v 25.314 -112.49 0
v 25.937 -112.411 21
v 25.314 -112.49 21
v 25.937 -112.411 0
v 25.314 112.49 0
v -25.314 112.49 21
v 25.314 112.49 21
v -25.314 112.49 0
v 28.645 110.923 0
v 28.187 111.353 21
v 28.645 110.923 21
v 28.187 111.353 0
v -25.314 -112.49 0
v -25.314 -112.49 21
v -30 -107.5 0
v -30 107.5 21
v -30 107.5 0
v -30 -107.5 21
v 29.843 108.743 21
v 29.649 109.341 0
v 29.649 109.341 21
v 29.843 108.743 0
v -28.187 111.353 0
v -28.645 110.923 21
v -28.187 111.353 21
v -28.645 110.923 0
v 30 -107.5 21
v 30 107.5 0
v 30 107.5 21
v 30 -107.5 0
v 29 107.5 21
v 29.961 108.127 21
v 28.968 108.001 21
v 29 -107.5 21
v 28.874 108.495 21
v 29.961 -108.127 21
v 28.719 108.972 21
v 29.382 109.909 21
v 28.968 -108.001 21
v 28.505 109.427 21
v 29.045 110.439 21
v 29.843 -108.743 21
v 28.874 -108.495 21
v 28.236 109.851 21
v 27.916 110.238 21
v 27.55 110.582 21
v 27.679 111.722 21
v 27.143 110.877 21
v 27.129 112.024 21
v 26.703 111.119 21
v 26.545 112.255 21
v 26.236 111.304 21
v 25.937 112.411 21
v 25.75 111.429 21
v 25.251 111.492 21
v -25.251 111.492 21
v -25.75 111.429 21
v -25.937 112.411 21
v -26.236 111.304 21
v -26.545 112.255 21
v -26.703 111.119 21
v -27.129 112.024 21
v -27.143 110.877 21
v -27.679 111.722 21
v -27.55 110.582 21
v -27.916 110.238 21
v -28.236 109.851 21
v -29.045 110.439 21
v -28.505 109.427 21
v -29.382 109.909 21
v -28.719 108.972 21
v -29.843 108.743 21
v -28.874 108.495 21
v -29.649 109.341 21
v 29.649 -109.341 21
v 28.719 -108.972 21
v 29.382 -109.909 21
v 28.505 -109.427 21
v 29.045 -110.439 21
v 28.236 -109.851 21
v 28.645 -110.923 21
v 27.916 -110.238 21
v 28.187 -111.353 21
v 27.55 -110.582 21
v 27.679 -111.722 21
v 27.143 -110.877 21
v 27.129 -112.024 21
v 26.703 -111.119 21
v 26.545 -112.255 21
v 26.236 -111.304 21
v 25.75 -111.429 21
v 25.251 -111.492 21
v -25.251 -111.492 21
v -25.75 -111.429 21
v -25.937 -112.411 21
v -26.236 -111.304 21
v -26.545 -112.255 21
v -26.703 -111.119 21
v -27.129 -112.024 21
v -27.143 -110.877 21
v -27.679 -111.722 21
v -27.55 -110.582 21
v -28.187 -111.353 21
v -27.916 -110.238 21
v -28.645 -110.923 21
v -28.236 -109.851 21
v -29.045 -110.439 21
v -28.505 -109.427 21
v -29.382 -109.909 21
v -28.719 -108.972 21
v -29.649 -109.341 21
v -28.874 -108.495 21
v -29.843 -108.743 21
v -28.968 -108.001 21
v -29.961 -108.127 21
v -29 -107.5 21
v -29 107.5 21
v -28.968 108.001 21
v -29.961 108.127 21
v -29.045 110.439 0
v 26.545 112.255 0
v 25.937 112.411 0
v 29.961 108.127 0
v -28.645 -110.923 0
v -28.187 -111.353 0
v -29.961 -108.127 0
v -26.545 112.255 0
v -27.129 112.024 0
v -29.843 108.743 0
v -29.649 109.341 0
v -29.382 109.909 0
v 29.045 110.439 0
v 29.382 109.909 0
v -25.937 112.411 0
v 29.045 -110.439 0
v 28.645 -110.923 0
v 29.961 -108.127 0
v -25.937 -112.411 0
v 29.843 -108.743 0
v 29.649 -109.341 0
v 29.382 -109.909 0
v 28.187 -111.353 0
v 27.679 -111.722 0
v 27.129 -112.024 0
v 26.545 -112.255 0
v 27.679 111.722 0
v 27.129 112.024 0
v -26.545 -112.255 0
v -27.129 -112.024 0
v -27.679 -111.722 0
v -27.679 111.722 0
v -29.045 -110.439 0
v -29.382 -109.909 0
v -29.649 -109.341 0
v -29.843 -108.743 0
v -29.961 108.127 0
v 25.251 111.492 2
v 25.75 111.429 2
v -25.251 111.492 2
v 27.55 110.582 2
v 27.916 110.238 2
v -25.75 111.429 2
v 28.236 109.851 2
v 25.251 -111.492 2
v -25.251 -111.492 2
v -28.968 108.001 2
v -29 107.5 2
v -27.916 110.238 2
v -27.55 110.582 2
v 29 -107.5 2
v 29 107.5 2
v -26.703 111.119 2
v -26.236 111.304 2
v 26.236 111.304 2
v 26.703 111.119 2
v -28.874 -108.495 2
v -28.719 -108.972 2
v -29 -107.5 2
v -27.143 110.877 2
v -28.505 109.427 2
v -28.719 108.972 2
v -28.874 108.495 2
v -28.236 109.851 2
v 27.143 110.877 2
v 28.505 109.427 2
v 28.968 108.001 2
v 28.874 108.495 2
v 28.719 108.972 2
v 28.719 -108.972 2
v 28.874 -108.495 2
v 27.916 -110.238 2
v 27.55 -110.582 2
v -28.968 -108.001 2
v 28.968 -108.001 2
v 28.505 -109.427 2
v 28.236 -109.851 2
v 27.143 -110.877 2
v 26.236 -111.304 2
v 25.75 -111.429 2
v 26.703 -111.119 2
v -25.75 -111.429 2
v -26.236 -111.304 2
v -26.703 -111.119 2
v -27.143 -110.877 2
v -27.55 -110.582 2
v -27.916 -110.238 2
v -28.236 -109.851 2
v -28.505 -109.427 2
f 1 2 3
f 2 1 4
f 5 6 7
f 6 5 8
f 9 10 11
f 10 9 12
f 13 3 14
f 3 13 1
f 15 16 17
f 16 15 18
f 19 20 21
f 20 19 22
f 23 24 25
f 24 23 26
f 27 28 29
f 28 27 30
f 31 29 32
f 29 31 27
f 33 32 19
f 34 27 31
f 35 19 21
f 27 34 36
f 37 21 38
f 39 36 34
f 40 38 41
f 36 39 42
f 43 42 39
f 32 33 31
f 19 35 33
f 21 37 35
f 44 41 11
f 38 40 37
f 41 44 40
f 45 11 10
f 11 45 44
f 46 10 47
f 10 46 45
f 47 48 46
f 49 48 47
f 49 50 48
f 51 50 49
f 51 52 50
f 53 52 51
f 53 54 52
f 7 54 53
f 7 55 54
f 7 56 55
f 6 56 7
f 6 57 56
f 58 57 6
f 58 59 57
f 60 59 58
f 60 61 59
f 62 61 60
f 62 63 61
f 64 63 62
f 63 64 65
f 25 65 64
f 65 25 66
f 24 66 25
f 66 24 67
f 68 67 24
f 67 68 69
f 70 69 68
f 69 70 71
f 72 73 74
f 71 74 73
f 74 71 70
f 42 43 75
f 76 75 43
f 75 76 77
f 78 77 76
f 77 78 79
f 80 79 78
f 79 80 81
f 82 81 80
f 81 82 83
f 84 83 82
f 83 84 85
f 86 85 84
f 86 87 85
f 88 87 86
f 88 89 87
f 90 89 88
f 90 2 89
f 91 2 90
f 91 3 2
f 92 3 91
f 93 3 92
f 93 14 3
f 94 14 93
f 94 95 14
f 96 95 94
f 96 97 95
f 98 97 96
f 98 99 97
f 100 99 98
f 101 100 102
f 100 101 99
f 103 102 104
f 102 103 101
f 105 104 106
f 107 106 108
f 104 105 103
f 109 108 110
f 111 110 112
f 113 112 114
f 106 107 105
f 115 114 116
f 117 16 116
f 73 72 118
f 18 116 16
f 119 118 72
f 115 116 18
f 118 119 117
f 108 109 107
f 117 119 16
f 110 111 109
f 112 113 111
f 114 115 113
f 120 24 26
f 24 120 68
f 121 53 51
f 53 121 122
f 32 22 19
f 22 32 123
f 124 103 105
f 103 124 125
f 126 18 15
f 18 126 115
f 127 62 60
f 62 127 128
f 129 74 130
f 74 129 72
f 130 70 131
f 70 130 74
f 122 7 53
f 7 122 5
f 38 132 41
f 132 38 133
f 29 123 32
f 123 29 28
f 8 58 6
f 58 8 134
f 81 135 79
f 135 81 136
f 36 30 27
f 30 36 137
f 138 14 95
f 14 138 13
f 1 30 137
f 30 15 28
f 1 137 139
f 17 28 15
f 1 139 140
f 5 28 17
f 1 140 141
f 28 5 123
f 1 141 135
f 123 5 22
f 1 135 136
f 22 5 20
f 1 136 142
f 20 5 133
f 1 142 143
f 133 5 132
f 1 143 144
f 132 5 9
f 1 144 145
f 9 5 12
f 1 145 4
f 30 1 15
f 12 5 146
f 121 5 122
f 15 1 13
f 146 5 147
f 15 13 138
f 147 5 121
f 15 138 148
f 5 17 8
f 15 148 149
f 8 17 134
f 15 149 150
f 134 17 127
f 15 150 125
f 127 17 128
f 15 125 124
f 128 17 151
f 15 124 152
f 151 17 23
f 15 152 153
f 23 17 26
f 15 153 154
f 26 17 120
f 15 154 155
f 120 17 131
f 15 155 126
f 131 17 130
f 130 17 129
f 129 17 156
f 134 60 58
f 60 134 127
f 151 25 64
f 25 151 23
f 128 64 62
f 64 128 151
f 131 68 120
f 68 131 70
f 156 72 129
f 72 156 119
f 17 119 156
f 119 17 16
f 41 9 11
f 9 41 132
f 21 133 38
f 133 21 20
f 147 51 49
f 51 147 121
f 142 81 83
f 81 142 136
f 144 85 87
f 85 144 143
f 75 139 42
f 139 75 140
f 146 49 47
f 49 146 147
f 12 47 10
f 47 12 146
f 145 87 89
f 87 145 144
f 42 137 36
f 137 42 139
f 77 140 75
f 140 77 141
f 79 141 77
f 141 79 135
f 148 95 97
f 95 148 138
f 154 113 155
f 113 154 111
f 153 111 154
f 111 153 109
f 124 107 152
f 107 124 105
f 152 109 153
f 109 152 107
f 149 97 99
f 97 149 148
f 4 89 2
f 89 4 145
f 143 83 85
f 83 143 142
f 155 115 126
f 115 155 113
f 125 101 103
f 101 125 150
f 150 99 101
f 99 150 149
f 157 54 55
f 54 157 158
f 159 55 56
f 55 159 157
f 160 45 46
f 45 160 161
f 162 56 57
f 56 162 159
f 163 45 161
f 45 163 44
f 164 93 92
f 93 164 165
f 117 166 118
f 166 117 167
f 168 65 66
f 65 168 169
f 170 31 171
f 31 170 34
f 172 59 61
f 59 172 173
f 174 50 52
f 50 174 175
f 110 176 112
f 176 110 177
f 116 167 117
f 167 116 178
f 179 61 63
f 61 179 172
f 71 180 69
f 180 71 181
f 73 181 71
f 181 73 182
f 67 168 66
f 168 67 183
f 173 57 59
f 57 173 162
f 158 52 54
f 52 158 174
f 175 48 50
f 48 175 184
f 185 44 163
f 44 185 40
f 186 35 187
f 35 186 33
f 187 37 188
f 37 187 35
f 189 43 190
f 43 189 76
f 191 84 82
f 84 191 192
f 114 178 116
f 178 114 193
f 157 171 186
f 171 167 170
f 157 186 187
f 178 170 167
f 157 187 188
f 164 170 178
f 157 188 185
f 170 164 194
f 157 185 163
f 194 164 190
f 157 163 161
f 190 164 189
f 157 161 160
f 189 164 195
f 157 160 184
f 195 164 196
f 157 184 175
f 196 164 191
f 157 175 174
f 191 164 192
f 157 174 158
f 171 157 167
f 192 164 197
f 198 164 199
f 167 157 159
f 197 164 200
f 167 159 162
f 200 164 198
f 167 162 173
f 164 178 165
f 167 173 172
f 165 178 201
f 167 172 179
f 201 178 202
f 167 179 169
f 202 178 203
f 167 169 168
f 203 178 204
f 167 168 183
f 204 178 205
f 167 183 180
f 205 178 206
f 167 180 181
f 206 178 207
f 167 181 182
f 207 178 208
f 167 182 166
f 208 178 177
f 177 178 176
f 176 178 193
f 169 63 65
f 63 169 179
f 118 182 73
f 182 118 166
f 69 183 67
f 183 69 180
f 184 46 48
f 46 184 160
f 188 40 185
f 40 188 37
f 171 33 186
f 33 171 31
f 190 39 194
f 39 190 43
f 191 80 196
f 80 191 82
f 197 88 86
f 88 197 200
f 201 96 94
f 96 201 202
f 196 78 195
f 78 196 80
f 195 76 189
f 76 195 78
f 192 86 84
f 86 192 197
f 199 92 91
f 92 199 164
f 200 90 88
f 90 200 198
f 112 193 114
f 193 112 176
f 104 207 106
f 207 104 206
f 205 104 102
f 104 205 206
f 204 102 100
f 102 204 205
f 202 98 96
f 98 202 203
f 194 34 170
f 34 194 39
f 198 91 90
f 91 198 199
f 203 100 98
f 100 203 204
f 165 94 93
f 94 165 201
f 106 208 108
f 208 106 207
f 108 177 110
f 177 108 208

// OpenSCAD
$fn = 50;


difference() {
	union() {
		hull() {
			translate(v = [-25.0000000000, 107.5000000000, 0]) {
				cylinder(h = 21, r = 5);
			}
			translate(v = [25.0000000000, 107.5000000000, 0]) {
				cylinder(h = 21, r = 5);
			}
			translate(v = [-25.0000000000, -107.5000000000, 0]) {
				cylinder(h = 21, r = 5);
			}
			translate(v = [25.0000000000, -107.5000000000, 0]) {
				cylinder(h = 21, r = 5);
			}
		}
	}
	union() {
		translate(v = [0, 0, 2]) {
			hull() {
				translate(v = [-25.0000000000, 107.5000000000, 0]) {
					cylinder(h = 19, r = 4);
				}
				translate(v = [25.0000000000, 107.5000000000, 0]) {
					cylinder(h = 19, r = 4);
				}
				translate(v = [-25.0000000000, -107.5000000000, 0]) {
					cylinder(h = 19, r = 4);
				}
				translate(v = [25.0000000000, -107.5000000000, 0]) {
					cylinder(h = 19, r = 4);
				}
			}
		}
	}
}
